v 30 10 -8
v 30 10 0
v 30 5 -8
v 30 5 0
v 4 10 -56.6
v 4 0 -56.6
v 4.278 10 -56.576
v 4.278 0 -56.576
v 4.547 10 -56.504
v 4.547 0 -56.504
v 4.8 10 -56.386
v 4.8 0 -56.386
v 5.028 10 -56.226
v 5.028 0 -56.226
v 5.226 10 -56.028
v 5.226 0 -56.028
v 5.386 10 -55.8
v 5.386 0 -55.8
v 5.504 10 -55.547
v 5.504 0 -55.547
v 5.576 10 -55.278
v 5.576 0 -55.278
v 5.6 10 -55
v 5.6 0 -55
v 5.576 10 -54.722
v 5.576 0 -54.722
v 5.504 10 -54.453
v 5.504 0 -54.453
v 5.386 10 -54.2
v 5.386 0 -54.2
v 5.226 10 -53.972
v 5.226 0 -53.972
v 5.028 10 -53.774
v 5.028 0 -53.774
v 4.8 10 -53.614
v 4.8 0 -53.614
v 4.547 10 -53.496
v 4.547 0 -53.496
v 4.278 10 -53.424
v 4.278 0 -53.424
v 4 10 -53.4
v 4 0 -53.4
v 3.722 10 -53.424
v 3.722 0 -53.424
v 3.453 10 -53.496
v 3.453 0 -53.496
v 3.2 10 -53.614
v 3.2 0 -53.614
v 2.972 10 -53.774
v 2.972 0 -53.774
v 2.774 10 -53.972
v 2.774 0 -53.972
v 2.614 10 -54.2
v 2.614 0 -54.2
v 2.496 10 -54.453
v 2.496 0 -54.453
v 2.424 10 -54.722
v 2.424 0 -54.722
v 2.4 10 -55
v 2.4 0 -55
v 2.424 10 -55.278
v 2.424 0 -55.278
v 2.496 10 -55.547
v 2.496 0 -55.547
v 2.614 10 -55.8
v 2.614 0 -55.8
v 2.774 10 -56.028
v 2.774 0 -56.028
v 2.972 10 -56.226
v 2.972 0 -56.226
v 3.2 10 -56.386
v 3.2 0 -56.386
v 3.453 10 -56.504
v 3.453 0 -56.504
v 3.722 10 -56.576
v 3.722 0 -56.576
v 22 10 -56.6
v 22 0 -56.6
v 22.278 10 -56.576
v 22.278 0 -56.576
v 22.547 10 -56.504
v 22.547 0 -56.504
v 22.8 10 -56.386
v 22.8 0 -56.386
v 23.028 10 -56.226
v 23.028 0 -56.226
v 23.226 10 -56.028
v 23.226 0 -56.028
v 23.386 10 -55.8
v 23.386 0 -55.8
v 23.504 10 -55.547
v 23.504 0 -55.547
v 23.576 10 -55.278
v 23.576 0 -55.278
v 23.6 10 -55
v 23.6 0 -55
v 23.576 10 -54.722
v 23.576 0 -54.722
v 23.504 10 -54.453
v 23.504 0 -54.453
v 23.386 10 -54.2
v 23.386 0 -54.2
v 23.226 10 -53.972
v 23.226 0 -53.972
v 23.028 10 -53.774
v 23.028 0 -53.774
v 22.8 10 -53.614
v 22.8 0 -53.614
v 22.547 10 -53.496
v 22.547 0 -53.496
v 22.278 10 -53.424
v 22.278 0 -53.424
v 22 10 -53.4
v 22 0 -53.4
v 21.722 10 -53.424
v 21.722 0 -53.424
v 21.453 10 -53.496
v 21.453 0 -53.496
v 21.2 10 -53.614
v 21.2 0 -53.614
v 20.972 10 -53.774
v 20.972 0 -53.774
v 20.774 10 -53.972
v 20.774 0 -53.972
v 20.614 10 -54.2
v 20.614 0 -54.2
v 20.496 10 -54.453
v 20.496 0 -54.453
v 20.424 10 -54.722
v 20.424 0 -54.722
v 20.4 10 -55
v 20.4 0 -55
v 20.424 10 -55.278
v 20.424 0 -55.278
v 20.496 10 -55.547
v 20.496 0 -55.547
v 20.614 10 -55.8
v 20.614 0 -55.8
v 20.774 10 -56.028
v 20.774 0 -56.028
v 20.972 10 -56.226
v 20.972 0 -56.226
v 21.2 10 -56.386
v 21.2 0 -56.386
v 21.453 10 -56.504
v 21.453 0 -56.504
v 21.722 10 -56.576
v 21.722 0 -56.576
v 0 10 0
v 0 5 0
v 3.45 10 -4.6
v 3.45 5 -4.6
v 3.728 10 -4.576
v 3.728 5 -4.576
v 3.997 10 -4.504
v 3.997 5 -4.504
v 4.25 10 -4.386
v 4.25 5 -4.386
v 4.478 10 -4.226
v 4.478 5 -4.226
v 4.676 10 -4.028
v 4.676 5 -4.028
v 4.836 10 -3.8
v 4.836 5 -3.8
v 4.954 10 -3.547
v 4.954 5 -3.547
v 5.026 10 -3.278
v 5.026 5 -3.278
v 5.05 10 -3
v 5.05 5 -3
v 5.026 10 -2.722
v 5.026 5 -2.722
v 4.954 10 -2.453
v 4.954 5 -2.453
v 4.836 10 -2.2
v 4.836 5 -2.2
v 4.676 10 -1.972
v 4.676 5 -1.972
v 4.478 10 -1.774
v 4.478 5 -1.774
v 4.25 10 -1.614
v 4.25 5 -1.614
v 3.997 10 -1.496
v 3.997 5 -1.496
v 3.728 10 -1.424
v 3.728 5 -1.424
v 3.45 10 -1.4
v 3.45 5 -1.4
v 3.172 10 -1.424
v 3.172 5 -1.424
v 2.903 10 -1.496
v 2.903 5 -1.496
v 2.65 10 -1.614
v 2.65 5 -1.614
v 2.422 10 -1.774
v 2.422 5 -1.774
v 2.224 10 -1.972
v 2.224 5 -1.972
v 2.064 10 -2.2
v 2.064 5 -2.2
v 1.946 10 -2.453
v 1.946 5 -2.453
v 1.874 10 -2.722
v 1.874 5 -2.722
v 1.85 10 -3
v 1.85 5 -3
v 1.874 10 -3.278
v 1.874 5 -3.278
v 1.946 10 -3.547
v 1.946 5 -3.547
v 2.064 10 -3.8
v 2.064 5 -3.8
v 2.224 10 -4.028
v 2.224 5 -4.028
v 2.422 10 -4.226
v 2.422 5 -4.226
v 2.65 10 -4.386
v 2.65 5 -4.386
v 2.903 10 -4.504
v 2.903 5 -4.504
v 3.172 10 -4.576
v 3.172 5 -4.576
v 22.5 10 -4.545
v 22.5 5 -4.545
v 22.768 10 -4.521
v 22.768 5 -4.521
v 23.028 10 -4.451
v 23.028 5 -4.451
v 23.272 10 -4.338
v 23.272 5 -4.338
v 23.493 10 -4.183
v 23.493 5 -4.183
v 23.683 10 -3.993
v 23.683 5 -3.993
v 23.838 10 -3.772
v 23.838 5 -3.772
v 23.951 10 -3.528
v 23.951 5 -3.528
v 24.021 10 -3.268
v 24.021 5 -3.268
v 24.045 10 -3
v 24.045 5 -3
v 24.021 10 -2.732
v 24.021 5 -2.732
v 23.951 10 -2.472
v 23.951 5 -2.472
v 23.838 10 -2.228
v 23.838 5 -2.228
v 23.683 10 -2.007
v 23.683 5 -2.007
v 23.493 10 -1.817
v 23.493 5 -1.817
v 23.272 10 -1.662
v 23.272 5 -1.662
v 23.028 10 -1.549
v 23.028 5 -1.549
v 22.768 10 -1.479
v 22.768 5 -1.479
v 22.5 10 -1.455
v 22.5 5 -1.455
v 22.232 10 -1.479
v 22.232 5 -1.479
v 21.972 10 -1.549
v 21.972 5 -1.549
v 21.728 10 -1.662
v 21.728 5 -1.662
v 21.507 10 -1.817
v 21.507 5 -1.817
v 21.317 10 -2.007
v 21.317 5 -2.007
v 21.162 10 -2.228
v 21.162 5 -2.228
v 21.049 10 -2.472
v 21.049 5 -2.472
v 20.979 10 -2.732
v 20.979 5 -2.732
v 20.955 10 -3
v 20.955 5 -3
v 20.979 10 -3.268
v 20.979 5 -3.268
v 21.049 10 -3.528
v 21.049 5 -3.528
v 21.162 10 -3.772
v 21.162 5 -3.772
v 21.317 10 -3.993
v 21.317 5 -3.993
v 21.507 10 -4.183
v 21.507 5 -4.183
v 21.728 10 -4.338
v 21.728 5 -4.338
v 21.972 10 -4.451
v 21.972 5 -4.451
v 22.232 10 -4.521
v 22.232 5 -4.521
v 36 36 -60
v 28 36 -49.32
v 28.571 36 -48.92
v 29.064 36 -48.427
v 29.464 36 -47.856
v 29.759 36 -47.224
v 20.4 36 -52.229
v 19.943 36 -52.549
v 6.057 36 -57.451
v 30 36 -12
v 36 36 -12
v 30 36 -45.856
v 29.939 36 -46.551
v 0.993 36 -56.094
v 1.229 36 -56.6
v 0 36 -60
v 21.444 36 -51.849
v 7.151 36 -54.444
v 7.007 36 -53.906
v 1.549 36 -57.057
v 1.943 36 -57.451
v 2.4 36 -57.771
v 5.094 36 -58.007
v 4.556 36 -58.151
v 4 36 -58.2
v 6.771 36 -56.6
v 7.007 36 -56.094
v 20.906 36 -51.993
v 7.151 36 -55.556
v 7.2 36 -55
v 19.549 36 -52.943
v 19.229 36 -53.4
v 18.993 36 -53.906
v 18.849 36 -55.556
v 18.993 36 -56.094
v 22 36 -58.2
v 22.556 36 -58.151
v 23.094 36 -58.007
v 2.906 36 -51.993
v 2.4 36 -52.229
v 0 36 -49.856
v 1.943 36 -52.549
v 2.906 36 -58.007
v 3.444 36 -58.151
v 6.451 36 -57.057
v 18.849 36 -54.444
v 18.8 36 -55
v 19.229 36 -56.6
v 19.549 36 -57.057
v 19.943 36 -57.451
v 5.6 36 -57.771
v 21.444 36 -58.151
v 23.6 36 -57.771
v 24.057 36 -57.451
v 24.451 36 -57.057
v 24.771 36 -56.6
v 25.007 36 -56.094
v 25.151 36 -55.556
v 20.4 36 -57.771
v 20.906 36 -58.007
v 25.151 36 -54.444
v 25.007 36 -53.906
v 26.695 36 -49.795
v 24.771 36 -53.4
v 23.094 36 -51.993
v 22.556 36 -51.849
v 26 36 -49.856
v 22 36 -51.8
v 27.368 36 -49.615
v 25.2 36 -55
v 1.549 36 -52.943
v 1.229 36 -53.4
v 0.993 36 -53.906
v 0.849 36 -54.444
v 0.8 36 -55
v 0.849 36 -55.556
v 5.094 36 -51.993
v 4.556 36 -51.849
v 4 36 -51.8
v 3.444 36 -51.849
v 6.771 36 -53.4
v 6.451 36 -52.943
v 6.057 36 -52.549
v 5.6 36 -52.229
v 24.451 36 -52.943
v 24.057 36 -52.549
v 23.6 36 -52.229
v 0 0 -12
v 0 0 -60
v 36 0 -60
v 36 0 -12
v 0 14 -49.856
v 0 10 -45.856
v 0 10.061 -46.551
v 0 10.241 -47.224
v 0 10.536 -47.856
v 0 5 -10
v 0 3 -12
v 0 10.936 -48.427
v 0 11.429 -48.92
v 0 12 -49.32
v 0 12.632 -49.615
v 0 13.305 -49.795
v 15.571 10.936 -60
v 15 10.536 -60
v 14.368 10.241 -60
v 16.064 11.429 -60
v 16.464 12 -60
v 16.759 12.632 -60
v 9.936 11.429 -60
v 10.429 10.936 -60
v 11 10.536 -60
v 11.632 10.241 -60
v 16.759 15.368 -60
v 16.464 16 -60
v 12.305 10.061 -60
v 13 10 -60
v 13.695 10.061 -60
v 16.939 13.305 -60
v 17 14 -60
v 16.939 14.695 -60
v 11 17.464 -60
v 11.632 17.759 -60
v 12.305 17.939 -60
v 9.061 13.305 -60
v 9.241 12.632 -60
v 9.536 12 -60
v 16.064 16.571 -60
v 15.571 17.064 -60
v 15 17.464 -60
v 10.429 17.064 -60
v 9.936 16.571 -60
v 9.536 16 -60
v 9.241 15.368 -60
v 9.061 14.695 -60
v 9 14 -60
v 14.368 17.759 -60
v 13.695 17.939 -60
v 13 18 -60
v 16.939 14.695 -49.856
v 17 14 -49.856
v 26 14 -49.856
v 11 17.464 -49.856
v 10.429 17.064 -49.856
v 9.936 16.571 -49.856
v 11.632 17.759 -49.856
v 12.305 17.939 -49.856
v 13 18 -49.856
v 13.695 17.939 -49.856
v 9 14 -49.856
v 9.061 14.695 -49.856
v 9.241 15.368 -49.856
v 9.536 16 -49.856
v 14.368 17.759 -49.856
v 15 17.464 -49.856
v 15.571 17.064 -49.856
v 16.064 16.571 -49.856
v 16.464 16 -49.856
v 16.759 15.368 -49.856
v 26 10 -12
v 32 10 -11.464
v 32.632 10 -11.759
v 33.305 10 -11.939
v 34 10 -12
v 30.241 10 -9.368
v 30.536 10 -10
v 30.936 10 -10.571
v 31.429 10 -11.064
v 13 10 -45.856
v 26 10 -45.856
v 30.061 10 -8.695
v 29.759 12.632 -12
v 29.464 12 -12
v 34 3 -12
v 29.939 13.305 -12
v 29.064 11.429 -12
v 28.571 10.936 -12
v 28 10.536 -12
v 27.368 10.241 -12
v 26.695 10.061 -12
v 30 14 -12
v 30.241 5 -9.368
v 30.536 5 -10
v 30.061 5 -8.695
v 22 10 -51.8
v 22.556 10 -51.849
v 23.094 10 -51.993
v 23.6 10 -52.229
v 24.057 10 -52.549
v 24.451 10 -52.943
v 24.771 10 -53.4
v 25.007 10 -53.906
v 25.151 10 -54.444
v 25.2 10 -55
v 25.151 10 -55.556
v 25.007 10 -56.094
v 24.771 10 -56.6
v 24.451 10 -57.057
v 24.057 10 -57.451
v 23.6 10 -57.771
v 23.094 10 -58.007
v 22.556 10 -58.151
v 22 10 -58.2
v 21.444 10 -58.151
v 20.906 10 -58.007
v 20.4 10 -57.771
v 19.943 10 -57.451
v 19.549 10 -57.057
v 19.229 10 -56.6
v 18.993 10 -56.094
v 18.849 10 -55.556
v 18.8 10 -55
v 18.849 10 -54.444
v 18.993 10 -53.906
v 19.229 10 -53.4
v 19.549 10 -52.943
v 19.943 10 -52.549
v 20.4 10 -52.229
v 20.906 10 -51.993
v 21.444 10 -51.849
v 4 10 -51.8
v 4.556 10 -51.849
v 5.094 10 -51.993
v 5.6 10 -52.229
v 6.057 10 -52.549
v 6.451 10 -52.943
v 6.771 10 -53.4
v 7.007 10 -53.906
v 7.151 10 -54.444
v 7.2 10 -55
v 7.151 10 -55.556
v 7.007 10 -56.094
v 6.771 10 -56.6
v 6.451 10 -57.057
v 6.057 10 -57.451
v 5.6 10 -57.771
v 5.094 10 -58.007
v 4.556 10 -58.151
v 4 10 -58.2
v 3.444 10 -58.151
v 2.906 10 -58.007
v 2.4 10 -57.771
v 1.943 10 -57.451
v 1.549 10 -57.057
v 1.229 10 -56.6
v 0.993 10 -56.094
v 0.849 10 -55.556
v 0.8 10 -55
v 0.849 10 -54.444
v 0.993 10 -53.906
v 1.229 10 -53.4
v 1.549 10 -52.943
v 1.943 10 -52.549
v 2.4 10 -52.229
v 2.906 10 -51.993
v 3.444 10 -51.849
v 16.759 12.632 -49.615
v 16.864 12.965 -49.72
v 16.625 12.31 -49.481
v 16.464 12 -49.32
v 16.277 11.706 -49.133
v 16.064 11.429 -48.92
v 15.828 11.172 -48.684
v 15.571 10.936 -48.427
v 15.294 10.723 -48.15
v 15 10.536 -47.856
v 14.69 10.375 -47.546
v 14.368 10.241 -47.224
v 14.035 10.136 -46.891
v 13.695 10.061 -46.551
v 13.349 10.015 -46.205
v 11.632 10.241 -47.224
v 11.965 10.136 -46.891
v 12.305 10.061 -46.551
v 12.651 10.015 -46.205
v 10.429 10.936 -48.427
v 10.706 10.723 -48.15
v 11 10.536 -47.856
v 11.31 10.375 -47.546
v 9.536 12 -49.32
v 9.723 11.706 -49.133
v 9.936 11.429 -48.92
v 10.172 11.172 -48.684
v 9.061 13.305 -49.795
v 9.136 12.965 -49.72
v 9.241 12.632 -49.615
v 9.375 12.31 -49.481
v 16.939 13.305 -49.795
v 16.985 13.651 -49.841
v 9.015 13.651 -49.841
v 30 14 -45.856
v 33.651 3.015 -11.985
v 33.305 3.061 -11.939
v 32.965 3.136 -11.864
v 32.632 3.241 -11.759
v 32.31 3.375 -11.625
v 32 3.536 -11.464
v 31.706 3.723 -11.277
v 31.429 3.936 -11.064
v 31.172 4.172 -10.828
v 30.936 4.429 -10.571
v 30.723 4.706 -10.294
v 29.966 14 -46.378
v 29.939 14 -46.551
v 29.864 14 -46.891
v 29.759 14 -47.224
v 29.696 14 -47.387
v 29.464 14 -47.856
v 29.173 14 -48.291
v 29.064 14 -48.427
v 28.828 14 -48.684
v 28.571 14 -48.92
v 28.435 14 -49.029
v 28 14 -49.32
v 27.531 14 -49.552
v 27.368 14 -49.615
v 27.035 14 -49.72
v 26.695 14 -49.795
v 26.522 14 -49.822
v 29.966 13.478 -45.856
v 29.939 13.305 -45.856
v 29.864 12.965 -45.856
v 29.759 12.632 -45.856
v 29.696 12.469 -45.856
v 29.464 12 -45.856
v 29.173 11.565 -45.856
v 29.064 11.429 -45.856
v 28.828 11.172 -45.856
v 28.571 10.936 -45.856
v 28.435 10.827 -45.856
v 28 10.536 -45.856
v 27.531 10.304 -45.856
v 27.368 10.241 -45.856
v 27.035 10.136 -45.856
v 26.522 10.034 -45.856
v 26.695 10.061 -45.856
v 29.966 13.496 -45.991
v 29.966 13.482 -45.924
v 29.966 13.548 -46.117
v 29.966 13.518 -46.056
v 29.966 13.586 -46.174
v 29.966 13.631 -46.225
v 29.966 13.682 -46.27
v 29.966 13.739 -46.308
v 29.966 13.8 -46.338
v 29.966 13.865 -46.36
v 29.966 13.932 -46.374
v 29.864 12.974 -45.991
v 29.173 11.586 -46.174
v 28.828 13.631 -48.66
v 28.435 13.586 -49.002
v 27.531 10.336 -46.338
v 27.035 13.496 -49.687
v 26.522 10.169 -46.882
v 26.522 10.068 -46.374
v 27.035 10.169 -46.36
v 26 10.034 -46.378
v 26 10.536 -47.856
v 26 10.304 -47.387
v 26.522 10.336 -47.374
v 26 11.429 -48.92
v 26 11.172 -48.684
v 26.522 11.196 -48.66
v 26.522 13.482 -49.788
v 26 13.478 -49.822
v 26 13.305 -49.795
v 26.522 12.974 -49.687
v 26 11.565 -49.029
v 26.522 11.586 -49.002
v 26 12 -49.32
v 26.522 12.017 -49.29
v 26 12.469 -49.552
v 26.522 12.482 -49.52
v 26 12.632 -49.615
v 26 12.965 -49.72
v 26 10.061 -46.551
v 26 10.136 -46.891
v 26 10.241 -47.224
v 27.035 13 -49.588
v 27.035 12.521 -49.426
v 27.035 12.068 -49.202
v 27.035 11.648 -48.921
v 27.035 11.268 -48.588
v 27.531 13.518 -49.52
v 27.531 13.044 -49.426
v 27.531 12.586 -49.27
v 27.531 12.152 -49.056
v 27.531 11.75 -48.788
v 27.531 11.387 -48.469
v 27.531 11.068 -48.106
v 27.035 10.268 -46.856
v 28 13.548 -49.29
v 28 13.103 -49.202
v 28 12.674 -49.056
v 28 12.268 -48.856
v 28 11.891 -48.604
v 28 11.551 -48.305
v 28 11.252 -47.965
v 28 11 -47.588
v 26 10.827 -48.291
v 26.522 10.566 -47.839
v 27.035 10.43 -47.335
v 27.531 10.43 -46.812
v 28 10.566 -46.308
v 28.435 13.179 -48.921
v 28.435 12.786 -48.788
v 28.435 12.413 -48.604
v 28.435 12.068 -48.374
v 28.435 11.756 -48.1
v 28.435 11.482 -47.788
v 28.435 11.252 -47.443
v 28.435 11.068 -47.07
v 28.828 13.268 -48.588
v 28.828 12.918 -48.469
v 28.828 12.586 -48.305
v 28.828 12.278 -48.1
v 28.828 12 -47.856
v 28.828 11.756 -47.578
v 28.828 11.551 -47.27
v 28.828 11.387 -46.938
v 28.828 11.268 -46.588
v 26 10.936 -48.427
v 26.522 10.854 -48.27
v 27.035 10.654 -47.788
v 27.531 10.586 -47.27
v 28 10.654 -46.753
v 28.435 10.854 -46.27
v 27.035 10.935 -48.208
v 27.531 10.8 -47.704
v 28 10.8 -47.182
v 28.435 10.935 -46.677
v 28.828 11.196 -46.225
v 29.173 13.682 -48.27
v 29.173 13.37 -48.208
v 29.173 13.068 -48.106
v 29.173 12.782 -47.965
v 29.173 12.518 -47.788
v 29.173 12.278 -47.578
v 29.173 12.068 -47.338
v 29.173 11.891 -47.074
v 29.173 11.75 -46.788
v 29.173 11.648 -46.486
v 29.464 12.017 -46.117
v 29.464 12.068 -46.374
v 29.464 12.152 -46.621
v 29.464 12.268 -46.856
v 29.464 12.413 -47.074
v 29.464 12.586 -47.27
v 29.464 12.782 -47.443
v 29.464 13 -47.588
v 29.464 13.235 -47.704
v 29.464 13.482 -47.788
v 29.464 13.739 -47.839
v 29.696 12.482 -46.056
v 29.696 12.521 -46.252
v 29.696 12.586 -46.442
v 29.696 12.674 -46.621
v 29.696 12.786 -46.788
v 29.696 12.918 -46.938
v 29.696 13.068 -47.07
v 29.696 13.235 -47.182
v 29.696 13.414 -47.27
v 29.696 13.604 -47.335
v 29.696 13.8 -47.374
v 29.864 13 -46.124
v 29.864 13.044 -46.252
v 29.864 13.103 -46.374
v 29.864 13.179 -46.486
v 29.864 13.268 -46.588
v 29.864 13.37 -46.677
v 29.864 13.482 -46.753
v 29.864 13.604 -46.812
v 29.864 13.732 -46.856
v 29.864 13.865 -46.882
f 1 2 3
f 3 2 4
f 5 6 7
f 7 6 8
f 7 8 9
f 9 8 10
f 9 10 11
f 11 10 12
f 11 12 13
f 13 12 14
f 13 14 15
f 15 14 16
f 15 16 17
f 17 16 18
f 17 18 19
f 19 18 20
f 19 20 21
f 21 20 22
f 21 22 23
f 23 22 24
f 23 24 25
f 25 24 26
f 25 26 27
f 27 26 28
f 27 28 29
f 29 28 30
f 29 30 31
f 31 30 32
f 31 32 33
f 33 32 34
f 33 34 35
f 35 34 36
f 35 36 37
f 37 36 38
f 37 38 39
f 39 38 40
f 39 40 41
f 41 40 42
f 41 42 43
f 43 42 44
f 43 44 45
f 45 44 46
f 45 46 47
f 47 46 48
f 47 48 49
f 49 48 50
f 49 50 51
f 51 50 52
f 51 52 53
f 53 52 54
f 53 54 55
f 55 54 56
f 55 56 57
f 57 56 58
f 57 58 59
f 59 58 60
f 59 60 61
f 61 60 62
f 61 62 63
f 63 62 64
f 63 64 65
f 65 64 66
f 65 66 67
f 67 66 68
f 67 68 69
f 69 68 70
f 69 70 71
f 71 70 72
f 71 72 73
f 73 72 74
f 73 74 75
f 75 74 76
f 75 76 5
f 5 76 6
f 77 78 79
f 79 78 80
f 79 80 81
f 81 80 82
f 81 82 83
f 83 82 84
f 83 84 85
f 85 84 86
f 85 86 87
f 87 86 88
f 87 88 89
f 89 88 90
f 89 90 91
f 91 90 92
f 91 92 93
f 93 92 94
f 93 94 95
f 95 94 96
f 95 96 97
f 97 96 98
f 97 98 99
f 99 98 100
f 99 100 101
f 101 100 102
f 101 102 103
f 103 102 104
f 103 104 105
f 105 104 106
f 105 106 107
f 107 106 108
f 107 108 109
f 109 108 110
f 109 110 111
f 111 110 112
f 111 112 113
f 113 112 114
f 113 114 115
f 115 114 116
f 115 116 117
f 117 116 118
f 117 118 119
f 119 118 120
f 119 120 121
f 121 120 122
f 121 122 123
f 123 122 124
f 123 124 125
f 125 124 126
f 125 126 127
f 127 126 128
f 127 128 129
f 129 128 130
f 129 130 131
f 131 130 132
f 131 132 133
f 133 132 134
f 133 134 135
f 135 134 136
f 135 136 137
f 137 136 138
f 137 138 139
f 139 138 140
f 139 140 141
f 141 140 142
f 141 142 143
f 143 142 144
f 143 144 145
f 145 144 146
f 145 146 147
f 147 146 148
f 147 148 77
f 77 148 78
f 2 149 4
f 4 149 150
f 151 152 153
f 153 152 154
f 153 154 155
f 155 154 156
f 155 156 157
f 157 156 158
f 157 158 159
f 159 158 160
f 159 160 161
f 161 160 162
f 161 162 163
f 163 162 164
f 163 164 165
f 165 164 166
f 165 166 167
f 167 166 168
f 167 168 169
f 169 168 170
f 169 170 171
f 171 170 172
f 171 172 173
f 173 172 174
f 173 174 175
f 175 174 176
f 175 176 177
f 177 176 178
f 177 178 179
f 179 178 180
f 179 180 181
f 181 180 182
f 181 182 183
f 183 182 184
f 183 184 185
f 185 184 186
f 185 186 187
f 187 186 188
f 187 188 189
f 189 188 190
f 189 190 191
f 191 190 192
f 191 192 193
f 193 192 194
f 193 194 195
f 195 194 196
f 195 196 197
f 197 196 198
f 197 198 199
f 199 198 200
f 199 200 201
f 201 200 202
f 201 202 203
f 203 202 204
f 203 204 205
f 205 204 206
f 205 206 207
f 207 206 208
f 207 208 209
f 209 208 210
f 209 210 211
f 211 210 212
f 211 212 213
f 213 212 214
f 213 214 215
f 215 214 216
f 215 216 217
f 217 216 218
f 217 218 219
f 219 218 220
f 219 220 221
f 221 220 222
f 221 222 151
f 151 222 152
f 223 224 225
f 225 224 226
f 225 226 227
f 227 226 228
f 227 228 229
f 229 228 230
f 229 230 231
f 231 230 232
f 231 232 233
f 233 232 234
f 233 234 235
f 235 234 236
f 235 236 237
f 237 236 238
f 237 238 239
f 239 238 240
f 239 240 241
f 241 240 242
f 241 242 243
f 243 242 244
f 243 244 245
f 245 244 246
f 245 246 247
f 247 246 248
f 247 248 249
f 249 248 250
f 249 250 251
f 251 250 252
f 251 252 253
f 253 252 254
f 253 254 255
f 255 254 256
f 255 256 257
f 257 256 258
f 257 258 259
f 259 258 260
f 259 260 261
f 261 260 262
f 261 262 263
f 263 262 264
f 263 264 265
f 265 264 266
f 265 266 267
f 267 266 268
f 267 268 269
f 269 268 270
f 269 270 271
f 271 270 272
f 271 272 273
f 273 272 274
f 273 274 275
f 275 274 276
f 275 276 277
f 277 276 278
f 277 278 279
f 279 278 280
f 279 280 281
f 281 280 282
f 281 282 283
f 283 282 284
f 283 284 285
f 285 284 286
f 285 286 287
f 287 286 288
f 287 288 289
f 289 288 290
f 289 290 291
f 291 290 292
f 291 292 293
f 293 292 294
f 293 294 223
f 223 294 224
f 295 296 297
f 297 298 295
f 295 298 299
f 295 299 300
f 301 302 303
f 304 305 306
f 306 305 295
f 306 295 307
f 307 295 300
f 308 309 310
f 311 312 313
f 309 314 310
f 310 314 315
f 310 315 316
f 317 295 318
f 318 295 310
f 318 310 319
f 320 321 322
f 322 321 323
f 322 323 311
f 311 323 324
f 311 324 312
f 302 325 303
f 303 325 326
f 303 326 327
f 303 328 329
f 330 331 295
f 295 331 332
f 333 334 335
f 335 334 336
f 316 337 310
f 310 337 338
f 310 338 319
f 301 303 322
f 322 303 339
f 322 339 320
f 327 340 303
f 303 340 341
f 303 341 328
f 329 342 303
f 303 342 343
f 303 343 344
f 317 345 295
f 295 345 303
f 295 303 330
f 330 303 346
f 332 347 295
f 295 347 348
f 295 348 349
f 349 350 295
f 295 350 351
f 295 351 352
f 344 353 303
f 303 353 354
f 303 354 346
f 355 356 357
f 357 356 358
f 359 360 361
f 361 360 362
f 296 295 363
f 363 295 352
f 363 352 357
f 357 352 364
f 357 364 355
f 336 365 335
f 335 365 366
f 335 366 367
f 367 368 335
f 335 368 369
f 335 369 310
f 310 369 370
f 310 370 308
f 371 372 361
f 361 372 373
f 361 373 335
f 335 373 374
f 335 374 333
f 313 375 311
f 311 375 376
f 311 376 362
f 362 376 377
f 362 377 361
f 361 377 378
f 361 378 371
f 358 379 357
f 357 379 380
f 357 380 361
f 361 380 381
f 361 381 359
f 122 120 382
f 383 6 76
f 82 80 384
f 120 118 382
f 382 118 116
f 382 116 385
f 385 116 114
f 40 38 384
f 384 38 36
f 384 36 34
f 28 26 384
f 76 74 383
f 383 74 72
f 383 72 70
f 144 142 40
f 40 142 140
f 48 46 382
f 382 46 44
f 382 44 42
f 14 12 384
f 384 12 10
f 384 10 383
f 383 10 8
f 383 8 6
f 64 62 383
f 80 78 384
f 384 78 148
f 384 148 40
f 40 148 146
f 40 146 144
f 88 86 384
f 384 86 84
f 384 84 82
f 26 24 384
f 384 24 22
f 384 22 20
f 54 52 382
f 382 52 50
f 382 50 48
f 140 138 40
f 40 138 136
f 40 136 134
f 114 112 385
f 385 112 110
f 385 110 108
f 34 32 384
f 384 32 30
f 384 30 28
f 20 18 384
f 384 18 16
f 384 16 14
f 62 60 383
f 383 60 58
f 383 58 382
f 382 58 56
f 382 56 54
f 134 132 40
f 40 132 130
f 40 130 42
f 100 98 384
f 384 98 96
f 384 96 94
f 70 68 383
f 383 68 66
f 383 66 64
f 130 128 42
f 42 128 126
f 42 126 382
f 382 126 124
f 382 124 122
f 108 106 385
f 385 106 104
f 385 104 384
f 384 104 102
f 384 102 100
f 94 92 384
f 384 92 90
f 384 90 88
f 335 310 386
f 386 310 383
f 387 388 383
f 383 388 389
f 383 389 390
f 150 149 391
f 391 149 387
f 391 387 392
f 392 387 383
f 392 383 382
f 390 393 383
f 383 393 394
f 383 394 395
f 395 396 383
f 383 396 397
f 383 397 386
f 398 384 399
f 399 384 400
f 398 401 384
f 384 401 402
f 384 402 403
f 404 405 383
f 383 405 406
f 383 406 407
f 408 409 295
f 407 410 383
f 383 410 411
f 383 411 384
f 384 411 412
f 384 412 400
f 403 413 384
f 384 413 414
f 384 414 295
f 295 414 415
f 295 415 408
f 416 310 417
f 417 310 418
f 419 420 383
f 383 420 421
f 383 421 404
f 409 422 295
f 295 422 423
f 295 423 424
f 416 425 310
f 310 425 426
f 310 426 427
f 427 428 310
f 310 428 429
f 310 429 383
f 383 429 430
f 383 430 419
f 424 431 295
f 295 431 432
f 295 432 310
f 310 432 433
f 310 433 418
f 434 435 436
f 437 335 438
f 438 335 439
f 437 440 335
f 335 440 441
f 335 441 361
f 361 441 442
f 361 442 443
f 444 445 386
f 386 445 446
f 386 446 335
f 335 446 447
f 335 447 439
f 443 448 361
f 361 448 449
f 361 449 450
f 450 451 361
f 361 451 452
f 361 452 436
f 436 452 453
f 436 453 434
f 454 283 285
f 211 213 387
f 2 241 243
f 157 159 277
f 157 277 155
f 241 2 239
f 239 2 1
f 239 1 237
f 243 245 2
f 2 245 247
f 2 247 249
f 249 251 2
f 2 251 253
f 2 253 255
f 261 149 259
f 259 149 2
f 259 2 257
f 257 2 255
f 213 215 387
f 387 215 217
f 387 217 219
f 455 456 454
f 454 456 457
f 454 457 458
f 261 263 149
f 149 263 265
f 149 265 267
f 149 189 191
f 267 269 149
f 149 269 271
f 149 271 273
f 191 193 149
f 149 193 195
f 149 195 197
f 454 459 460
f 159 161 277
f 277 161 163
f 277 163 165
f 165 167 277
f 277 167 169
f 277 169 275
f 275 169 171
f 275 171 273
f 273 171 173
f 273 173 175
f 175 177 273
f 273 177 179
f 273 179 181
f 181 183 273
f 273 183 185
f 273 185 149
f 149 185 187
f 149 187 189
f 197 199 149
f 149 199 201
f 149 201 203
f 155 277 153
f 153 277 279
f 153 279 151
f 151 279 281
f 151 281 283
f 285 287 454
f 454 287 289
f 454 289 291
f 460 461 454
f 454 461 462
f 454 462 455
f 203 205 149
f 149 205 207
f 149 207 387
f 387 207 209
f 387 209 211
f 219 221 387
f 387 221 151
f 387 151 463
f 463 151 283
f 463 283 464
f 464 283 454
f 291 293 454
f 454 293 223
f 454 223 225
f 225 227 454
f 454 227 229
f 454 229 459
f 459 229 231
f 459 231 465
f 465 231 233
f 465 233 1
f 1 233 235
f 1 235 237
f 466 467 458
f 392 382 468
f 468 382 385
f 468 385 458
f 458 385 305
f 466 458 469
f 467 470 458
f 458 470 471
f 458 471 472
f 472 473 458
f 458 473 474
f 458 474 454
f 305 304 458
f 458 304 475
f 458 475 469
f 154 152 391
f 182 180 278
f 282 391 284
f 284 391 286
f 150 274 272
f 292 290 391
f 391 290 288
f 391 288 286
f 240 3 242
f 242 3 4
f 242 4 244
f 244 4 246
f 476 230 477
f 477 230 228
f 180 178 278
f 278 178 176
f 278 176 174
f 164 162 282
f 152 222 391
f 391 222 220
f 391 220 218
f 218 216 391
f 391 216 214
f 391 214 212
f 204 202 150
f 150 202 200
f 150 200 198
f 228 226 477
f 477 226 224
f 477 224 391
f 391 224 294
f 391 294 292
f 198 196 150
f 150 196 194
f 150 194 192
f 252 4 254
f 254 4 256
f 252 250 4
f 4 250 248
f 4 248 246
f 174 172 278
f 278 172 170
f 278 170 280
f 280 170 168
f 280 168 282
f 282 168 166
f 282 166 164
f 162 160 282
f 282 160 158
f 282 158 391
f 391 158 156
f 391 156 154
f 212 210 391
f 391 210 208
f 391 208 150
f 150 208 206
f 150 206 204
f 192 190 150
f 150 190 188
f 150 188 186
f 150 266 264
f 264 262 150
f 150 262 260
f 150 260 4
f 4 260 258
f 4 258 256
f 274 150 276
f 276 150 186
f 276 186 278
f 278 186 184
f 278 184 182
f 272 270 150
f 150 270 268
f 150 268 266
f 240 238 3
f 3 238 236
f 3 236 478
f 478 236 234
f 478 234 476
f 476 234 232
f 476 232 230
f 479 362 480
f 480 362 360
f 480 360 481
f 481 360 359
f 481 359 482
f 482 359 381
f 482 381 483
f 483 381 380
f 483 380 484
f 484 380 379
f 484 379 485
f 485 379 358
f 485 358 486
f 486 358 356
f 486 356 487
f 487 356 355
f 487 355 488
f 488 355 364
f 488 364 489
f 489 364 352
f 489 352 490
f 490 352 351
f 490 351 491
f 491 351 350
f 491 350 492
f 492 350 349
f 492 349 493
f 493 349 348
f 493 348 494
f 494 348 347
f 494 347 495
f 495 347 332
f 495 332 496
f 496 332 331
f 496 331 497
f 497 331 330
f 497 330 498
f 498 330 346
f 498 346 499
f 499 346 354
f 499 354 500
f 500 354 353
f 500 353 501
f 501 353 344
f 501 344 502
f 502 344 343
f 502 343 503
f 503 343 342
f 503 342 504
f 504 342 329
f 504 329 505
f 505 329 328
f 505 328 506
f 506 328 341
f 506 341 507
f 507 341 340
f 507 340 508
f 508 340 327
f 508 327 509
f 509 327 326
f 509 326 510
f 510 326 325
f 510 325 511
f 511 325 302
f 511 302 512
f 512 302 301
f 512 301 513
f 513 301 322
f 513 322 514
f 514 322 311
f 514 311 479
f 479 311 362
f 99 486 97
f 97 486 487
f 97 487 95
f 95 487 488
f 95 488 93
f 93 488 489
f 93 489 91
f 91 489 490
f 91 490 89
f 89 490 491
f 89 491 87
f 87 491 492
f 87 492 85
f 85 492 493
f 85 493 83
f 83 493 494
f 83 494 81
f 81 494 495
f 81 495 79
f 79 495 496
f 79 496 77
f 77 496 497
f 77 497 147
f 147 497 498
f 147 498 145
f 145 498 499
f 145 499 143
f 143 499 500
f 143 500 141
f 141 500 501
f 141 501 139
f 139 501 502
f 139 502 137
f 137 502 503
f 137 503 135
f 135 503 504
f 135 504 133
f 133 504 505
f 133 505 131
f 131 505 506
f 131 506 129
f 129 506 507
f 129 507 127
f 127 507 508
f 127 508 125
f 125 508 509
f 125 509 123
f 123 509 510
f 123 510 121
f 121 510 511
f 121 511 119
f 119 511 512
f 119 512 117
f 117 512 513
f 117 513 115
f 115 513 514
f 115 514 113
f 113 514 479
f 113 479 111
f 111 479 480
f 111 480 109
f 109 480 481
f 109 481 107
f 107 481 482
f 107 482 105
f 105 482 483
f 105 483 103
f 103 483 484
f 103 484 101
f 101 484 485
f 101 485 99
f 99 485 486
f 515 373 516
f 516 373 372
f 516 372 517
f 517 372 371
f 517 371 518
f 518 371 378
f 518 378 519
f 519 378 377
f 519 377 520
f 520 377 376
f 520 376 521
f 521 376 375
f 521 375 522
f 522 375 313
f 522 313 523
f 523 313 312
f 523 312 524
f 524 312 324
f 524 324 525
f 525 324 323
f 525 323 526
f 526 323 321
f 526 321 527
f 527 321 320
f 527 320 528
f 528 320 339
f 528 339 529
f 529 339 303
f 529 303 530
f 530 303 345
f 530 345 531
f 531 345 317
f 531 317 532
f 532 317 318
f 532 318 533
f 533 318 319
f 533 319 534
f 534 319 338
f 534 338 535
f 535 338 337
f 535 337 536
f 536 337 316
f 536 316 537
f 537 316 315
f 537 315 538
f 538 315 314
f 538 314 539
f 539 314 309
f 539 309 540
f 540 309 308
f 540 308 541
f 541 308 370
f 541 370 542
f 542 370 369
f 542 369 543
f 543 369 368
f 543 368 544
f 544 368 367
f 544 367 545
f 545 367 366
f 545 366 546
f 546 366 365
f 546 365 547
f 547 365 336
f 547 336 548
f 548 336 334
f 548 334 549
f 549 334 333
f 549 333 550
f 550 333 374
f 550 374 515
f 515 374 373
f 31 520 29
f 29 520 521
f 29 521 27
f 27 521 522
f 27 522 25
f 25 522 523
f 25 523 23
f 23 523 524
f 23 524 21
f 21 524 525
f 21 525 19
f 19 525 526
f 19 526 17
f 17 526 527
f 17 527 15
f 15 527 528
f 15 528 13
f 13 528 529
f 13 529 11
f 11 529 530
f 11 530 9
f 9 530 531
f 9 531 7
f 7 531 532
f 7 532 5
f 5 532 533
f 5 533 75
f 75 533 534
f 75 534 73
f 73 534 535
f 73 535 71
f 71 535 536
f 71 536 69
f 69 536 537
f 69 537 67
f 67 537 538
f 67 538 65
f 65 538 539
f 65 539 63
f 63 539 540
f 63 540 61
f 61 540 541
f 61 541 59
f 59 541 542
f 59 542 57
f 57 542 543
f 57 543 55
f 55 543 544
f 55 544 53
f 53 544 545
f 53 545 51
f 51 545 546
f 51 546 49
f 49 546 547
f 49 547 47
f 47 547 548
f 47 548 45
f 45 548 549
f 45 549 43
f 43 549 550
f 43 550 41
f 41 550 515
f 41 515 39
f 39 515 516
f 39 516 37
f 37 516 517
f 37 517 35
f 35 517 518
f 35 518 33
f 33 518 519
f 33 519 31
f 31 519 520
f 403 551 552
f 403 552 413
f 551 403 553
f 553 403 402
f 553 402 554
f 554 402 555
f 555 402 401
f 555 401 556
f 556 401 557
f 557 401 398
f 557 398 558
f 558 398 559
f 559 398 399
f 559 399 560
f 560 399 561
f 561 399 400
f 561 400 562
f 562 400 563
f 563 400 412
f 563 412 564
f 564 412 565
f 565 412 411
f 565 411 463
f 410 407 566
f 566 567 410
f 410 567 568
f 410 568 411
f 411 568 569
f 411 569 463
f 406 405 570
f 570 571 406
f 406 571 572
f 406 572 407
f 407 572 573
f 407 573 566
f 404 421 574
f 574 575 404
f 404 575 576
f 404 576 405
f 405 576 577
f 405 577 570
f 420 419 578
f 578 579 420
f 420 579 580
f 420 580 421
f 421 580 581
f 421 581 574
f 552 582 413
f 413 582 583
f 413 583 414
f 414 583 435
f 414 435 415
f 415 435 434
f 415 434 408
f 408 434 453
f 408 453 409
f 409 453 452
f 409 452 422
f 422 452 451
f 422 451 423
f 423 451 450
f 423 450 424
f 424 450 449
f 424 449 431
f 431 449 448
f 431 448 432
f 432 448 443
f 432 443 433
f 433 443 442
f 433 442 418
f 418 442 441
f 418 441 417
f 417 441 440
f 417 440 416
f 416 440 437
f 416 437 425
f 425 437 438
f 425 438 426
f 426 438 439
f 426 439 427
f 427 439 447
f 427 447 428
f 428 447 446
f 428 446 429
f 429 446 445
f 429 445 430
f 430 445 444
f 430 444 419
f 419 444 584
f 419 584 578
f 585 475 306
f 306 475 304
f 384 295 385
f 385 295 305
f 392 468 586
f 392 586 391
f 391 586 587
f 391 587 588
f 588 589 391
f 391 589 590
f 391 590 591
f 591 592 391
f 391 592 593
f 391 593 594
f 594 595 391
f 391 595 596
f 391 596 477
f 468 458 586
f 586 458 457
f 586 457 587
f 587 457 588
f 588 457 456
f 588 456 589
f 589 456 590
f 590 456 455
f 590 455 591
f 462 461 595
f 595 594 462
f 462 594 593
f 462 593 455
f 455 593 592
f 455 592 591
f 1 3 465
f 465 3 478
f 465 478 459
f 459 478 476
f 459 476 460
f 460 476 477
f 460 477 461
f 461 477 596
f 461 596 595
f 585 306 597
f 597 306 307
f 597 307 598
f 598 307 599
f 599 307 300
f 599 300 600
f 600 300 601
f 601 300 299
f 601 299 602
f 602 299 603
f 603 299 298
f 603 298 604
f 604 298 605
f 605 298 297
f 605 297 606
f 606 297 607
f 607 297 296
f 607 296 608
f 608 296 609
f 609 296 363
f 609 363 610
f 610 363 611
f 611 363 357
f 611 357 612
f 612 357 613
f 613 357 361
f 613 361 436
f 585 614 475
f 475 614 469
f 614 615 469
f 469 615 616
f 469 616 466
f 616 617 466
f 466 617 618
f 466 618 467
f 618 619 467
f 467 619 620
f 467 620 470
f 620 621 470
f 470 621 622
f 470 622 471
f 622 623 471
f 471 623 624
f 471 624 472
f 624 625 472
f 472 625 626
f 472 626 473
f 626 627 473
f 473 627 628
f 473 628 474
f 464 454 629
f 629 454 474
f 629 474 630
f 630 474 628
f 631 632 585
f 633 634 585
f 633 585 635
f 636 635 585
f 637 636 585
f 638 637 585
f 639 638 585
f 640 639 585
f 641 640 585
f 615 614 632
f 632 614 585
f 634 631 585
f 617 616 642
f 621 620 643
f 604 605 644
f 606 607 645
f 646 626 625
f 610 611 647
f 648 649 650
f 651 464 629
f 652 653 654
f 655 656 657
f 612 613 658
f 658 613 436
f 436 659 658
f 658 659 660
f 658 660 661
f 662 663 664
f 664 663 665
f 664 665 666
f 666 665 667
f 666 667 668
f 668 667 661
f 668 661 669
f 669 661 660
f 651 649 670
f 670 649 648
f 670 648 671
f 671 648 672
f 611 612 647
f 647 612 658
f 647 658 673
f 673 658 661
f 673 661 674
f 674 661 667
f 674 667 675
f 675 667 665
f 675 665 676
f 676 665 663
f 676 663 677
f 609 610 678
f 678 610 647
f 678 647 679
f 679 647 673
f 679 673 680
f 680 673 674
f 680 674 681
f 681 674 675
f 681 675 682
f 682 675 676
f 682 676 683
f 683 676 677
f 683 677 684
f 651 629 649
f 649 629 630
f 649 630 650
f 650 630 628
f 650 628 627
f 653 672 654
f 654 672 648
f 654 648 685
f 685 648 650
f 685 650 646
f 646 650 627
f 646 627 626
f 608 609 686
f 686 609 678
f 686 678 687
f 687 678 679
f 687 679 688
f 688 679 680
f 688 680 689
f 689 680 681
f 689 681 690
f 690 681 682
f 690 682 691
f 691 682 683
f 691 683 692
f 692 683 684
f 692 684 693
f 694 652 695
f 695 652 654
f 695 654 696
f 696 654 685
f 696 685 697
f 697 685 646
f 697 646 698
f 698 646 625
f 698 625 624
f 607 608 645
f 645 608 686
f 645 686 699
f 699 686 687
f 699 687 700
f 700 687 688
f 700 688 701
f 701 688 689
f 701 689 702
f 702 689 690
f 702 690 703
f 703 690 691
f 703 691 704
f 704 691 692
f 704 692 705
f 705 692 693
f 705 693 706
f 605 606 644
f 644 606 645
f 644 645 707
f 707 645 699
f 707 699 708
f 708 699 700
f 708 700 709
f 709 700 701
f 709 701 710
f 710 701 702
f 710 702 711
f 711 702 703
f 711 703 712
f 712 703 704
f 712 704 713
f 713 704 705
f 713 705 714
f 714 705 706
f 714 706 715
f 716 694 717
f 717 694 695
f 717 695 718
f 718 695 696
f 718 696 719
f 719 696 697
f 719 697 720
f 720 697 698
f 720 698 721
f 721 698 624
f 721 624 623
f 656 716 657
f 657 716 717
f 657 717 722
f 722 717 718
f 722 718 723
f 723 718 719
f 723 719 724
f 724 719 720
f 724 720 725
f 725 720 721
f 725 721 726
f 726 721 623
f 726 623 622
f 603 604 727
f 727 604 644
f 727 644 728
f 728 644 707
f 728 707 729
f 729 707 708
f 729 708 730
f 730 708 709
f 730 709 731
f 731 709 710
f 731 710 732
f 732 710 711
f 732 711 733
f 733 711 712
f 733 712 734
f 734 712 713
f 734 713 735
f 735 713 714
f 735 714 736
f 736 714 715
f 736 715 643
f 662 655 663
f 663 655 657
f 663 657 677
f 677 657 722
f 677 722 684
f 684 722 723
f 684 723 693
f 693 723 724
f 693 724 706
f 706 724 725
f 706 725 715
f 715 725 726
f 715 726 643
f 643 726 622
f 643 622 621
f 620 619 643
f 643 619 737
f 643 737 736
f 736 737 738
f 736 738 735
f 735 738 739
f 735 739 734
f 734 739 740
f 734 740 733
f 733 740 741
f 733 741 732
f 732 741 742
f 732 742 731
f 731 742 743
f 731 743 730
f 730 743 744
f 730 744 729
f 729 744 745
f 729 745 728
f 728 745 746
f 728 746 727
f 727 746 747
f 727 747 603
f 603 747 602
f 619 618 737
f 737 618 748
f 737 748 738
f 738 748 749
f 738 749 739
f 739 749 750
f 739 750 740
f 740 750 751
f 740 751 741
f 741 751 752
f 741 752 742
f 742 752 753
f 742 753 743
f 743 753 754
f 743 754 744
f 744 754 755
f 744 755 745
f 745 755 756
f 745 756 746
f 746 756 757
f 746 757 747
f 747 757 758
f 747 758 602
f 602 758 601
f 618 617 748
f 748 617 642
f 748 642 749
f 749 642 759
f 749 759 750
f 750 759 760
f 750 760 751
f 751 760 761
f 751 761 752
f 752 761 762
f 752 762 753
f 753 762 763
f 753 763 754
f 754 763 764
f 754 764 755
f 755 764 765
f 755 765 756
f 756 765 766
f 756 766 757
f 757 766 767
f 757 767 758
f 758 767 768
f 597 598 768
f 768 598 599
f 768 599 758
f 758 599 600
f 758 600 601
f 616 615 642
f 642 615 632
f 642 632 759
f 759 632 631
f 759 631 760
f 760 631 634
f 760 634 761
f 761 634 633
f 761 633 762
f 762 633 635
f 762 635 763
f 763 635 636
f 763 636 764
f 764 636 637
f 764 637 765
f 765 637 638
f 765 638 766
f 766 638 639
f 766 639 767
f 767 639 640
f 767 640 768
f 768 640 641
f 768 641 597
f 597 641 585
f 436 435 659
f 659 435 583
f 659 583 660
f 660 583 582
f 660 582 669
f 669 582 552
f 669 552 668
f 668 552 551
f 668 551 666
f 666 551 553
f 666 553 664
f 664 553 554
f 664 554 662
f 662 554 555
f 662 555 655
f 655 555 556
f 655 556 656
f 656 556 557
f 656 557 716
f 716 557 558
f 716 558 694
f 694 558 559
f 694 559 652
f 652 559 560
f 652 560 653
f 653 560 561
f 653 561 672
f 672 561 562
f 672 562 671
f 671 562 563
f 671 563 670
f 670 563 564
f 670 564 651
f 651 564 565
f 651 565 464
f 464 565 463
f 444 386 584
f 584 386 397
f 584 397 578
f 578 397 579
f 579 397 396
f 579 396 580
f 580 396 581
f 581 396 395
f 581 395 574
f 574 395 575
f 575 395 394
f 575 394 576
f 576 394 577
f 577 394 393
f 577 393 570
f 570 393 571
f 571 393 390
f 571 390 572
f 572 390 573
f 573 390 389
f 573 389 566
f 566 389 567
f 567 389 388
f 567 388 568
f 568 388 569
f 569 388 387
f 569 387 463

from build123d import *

# Parameters (mm, degrees)
SKETCH2_W           = 30
SKETCH2_H           = 60
SKETCH2_R           = 1.6
SKETCH2_R_2         = 1.544536525
BOSS_EXTRUDE1_DEPTH = 36
SKETCH3_W           = 30
SKETCH3_H           = 49.856005965
CUT_EXTRUDE1_DEPTH  = 26
SKETCH4_W           = 30
SKETCH4_H           = 12
CUT_EXTRUDE2_DEPTH  = 5
SKETCH5_R           = 3.2
CUT_EXTRUDE3_DEPTH  = 26
SKETCH6_R           = 4
CUT_EXTRUDE4_DEPTH  = 26
SKETCH8_W           = 48
SKETCH8_H           = 36
BOSS_EXTRUDE3_DEPTH = 6
CHAMFER1_SIZE       = 2
FILLET1_R           = 4
FILLET2_R           = 4


with BuildPart() as part:
    # Sketch2 → Boss-Extrude1 (new body)
    with BuildSketch(Plane(origin=(0, 0, 0), x_dir=(1, 0, 0), z_dir=(0, 1, 0))):
        with Locations((15, 30)):
            Rectangle(SKETCH2_W, SKETCH2_H)
        with Locations(Location((3.45, 3, 0), (0, 0, 270))):
            Circle(SKETCH2_R, mode=Mode.SUBTRACT)
        with Locations(Location((22.5, 3, 0), (0, 0, 270))):
            Circle(SKETCH2_R_2, mode=Mode.SUBTRACT)
        with Locations(Location((4, 55, 0), (0, 0, 270))):
            Circle(SKETCH2_R, mode=Mode.SUBTRACT)
        with Locations(Location((22, 55, 0), (0, 0, 270))):
            Circle(SKETCH2_R, mode=Mode.SUBTRACT)
    extrude(amount=BOSS_EXTRUDE1_DEPTH)

    # Sketch3 → Cut-Extrude1 (cut)
    with BuildSketch(Plane(origin=(0, 36, 0), x_dir=(1, 0, 0), z_dir=(0, 1, 0))):
        with Locations((15, 24.928002983)):
            Rectangle(SKETCH3_W, SKETCH3_H)
    extrude(amount=-CUT_EXTRUDE1_DEPTH, mode=Mode.SUBTRACT)

    # Sketch4 → Cut-Extrude2 (cut)
    with BuildSketch(Plane.XZ):
        with Locations((15, -6)):
            Rectangle(SKETCH4_W, SKETCH4_H)
    extrude(amount=-CUT_EXTRUDE2_DEPTH, mode=Mode.SUBTRACT)

    # Sketch5 → Cut-Extrude3 (cut)
    with BuildSketch(Plane(origin=(0, 36, 0), x_dir=(1, 0, 0), z_dir=(0, 1, 0))):
        with Locations(Location((4, 55, 0), (0, 0, 270))):
            Circle(SKETCH5_R)
        with Locations(Location((22, 55, 0), (0, 0, 270))):
            Circle(SKETCH5_R)
    extrude(amount=-CUT_EXTRUDE3_DEPTH, mode=Mode.SUBTRACT)

    # Sketch6 → Cut-Extrude4 (cut)
    with BuildSketch(Plane(origin=(0, 0, -60), x_dir=(-1, 0, 0), z_dir=(0, 0, -1))):
        with Locations((-13, 14)):
            Circle(SKETCH6_R)
    extrude(amount=-CUT_EXTRUDE4_DEPTH, mode=Mode.SUBTRACT)

    # Sketch8 → Boss-Extrude3 (add)
    with BuildSketch(Plane(origin=(30, 0, 0), x_dir=(0, 0, -1), z_dir=(1, 0, 0))):
        with Locations((36, 18)):
            Rectangle(SKETCH8_W, SKETCH8_H)
    extrude(amount=BOSS_EXTRUDE3_DEPTH)

    # Chamfer1
    chamfer1_edges = [part.edges().sort_by_distance(p)[0] for p in [
        (15, 5, -12),
    ]]
    chamfer(chamfer1_edges, length=CHAMFER1_SIZE)

    # Fillet1
    # the kernel refuses this fillet: 4 mm, written as the material it adds along each edge
    with BuildSketch(Plane(origin=(30, 10, -12), x_dir=(0, 0, 1), z_dir=(0, -1, 0))) as fillet1_piece_1_section:
        with BuildLine():
            CenterArc((FILLET1_R, -FILLET1_R), FILLET1_R, 90, 90)
            Line((0, -FILLET1_R), (0, 0))
            Line((0, 0), (FILLET1_R, 0))
        make_face()
    fillet1_piece_1 = extrude(amount=17, mode=Mode.PRIVATE)
    fillet1_piece_1 = split(fillet1_piece_1, bisect_by=Plane(origin=(30.901414649, 5.69775692, -9.30224308), z_dir=(0, 0.7071067811865476, -0.7071067811865476)), keep=Keep.TOP, mode=Mode.PRIVATE)
    add(fillet1_piece_1)
    with BuildSketch(Plane(origin=(30, 20, -12), x_dir=(0, 0, 1), z_dir=(0, -1, 0))) as fillet1_piece_2_section:
        with BuildLine():
            CenterArc((FILLET1_R, -FILLET1_R), FILLET1_R, 90, 90)
            Line((0, -FILLET1_R), (0, 0))
            Line((0, 0), (FILLET1_R, 0))
        make_face()
    fillet1_piece_2 = extrude(amount=27, mode=Mode.PRIVATE)
    fillet1_piece_2 = split(fillet1_piece_2, bisect_by=Plane(origin=(30.104627362, 5, -9.206224594), z_dir=(0, 1, 0)), keep=Keep.TOP, mode=Mode.PRIVATE)
    fillet1_piece_2 = split(fillet1_piece_2, bisect_by=Plane(origin=(30.104627362, 5.595331555, -9.404668445), z_dir=(0, -0.7071067811865476, 0.7071067811865476)), keep=Keep.TOP, mode=Mode.PRIVATE)
    add(fillet1_piece_2)

    # Fillet2
    # the kernel refuses this fillet: 4 mm, written as the material it adds along each edge
    with BuildSketch(Plane(origin=(26, 14, -45.856005965), x_dir=(0, 0, -1), z_dir=(0, -1, 0))) as fillet2_piece_1_section:
        Polygon((0, 0), (FILLET2_R * 1.02, 0), (FILLET2_R * 1.02, FILLET2_R * 1.02), (0, FILLET2_R * 1.02), align=None)
    fillet2_piece_1 = extrude(amount=FILLET2_R * 1.02, mode=Mode.PRIVATE)
    fillet2_piece_1 = fillet2_piece_1 - Plane(origin=(26, 14, -45.856005965), x_dir=(-0.7071067811865475, 0, 0.7071067811865475), z_dir=(0, -1, 0)) * Sphere(FILLET2_R, mode=Mode.PRIVATE)
    add(fillet2_piece_1)
    with BuildSketch(Plane(origin=(26, 10, -49.856005965), x_dir=(0, 1, 0), z_dir=(-1, 0, 0))) as fillet2_piece_2_section:
        with BuildLine():
            CenterArc((FILLET2_R, -FILLET2_R), FILLET2_R, 90, 90)
            Line((0, -FILLET2_R), (0, 0))
            Line((0, 0), (FILLET2_R, 0))
        make_face()
    fillet2_piece_2 = extrude(amount=13, mode=Mode.PRIVATE)
    fillet2_piece_2 = fillet2_piece_2 - Plane(origin=(13, 14, -48.921311945), x_dir=(-1, 0, 0), z_dir=(0, 0, -1)) * Cylinder(4, 42, mode=Mode.PRIVATE)
    add(fillet2_piece_2)
    with BuildSketch(Plane(origin=(30, 36, -49.856005965), x_dir=(-1, 0, 0), z_dir=(0, -1, 0))) as fillet2_piece_3:
        with BuildLine():
            CenterArc((FILLET2_R, -FILLET2_R), FILLET2_R, 90, 90)
            Line((0, -FILLET2_R), (0, 0))
            Line((0, 0), (FILLET2_R, 0))
        make_face()
    extrude(amount=22)
    with BuildSketch(Plane(origin=(13, 10, -49.856005965), x_dir=(0, 1, 0), z_dir=(-1, 0, 0))) as fillet2_piece_4_section:
        with BuildLine():
            CenterArc((FILLET2_R, -FILLET2_R), FILLET2_R, 90, 90)
            Line((0, -FILLET2_R), (0, 0))
            Line((0, 0), (FILLET2_R, 0))
        make_face()
    fillet2_piece_4 = extrude(amount=13, mode=Mode.PRIVATE)
    fillet2_piece_4 = fillet2_piece_4 - Plane(origin=(13, 14, -48.921311944), x_dir=(-1, 0, 0), z_dir=(0, 0, -1)) * Cylinder(4, 43, mode=Mode.PRIVATE)
    add(fillet2_piece_4)
    with BuildSketch(Plane(origin=(30, 10, -12), x_dir=(0, 1, 0), z_dir=(0, 0, -1))) as fillet2_piece_5:
        with BuildLine():
            CenterArc((FILLET2_R, -FILLET2_R), FILLET2_R, 90, 90)
            Line((0, -FILLET2_R), (0, 0))
            Line((0, 0), (FILLET2_R, 0))
        make_face()
    extrude(amount=33.856005965)


solid = part.part
